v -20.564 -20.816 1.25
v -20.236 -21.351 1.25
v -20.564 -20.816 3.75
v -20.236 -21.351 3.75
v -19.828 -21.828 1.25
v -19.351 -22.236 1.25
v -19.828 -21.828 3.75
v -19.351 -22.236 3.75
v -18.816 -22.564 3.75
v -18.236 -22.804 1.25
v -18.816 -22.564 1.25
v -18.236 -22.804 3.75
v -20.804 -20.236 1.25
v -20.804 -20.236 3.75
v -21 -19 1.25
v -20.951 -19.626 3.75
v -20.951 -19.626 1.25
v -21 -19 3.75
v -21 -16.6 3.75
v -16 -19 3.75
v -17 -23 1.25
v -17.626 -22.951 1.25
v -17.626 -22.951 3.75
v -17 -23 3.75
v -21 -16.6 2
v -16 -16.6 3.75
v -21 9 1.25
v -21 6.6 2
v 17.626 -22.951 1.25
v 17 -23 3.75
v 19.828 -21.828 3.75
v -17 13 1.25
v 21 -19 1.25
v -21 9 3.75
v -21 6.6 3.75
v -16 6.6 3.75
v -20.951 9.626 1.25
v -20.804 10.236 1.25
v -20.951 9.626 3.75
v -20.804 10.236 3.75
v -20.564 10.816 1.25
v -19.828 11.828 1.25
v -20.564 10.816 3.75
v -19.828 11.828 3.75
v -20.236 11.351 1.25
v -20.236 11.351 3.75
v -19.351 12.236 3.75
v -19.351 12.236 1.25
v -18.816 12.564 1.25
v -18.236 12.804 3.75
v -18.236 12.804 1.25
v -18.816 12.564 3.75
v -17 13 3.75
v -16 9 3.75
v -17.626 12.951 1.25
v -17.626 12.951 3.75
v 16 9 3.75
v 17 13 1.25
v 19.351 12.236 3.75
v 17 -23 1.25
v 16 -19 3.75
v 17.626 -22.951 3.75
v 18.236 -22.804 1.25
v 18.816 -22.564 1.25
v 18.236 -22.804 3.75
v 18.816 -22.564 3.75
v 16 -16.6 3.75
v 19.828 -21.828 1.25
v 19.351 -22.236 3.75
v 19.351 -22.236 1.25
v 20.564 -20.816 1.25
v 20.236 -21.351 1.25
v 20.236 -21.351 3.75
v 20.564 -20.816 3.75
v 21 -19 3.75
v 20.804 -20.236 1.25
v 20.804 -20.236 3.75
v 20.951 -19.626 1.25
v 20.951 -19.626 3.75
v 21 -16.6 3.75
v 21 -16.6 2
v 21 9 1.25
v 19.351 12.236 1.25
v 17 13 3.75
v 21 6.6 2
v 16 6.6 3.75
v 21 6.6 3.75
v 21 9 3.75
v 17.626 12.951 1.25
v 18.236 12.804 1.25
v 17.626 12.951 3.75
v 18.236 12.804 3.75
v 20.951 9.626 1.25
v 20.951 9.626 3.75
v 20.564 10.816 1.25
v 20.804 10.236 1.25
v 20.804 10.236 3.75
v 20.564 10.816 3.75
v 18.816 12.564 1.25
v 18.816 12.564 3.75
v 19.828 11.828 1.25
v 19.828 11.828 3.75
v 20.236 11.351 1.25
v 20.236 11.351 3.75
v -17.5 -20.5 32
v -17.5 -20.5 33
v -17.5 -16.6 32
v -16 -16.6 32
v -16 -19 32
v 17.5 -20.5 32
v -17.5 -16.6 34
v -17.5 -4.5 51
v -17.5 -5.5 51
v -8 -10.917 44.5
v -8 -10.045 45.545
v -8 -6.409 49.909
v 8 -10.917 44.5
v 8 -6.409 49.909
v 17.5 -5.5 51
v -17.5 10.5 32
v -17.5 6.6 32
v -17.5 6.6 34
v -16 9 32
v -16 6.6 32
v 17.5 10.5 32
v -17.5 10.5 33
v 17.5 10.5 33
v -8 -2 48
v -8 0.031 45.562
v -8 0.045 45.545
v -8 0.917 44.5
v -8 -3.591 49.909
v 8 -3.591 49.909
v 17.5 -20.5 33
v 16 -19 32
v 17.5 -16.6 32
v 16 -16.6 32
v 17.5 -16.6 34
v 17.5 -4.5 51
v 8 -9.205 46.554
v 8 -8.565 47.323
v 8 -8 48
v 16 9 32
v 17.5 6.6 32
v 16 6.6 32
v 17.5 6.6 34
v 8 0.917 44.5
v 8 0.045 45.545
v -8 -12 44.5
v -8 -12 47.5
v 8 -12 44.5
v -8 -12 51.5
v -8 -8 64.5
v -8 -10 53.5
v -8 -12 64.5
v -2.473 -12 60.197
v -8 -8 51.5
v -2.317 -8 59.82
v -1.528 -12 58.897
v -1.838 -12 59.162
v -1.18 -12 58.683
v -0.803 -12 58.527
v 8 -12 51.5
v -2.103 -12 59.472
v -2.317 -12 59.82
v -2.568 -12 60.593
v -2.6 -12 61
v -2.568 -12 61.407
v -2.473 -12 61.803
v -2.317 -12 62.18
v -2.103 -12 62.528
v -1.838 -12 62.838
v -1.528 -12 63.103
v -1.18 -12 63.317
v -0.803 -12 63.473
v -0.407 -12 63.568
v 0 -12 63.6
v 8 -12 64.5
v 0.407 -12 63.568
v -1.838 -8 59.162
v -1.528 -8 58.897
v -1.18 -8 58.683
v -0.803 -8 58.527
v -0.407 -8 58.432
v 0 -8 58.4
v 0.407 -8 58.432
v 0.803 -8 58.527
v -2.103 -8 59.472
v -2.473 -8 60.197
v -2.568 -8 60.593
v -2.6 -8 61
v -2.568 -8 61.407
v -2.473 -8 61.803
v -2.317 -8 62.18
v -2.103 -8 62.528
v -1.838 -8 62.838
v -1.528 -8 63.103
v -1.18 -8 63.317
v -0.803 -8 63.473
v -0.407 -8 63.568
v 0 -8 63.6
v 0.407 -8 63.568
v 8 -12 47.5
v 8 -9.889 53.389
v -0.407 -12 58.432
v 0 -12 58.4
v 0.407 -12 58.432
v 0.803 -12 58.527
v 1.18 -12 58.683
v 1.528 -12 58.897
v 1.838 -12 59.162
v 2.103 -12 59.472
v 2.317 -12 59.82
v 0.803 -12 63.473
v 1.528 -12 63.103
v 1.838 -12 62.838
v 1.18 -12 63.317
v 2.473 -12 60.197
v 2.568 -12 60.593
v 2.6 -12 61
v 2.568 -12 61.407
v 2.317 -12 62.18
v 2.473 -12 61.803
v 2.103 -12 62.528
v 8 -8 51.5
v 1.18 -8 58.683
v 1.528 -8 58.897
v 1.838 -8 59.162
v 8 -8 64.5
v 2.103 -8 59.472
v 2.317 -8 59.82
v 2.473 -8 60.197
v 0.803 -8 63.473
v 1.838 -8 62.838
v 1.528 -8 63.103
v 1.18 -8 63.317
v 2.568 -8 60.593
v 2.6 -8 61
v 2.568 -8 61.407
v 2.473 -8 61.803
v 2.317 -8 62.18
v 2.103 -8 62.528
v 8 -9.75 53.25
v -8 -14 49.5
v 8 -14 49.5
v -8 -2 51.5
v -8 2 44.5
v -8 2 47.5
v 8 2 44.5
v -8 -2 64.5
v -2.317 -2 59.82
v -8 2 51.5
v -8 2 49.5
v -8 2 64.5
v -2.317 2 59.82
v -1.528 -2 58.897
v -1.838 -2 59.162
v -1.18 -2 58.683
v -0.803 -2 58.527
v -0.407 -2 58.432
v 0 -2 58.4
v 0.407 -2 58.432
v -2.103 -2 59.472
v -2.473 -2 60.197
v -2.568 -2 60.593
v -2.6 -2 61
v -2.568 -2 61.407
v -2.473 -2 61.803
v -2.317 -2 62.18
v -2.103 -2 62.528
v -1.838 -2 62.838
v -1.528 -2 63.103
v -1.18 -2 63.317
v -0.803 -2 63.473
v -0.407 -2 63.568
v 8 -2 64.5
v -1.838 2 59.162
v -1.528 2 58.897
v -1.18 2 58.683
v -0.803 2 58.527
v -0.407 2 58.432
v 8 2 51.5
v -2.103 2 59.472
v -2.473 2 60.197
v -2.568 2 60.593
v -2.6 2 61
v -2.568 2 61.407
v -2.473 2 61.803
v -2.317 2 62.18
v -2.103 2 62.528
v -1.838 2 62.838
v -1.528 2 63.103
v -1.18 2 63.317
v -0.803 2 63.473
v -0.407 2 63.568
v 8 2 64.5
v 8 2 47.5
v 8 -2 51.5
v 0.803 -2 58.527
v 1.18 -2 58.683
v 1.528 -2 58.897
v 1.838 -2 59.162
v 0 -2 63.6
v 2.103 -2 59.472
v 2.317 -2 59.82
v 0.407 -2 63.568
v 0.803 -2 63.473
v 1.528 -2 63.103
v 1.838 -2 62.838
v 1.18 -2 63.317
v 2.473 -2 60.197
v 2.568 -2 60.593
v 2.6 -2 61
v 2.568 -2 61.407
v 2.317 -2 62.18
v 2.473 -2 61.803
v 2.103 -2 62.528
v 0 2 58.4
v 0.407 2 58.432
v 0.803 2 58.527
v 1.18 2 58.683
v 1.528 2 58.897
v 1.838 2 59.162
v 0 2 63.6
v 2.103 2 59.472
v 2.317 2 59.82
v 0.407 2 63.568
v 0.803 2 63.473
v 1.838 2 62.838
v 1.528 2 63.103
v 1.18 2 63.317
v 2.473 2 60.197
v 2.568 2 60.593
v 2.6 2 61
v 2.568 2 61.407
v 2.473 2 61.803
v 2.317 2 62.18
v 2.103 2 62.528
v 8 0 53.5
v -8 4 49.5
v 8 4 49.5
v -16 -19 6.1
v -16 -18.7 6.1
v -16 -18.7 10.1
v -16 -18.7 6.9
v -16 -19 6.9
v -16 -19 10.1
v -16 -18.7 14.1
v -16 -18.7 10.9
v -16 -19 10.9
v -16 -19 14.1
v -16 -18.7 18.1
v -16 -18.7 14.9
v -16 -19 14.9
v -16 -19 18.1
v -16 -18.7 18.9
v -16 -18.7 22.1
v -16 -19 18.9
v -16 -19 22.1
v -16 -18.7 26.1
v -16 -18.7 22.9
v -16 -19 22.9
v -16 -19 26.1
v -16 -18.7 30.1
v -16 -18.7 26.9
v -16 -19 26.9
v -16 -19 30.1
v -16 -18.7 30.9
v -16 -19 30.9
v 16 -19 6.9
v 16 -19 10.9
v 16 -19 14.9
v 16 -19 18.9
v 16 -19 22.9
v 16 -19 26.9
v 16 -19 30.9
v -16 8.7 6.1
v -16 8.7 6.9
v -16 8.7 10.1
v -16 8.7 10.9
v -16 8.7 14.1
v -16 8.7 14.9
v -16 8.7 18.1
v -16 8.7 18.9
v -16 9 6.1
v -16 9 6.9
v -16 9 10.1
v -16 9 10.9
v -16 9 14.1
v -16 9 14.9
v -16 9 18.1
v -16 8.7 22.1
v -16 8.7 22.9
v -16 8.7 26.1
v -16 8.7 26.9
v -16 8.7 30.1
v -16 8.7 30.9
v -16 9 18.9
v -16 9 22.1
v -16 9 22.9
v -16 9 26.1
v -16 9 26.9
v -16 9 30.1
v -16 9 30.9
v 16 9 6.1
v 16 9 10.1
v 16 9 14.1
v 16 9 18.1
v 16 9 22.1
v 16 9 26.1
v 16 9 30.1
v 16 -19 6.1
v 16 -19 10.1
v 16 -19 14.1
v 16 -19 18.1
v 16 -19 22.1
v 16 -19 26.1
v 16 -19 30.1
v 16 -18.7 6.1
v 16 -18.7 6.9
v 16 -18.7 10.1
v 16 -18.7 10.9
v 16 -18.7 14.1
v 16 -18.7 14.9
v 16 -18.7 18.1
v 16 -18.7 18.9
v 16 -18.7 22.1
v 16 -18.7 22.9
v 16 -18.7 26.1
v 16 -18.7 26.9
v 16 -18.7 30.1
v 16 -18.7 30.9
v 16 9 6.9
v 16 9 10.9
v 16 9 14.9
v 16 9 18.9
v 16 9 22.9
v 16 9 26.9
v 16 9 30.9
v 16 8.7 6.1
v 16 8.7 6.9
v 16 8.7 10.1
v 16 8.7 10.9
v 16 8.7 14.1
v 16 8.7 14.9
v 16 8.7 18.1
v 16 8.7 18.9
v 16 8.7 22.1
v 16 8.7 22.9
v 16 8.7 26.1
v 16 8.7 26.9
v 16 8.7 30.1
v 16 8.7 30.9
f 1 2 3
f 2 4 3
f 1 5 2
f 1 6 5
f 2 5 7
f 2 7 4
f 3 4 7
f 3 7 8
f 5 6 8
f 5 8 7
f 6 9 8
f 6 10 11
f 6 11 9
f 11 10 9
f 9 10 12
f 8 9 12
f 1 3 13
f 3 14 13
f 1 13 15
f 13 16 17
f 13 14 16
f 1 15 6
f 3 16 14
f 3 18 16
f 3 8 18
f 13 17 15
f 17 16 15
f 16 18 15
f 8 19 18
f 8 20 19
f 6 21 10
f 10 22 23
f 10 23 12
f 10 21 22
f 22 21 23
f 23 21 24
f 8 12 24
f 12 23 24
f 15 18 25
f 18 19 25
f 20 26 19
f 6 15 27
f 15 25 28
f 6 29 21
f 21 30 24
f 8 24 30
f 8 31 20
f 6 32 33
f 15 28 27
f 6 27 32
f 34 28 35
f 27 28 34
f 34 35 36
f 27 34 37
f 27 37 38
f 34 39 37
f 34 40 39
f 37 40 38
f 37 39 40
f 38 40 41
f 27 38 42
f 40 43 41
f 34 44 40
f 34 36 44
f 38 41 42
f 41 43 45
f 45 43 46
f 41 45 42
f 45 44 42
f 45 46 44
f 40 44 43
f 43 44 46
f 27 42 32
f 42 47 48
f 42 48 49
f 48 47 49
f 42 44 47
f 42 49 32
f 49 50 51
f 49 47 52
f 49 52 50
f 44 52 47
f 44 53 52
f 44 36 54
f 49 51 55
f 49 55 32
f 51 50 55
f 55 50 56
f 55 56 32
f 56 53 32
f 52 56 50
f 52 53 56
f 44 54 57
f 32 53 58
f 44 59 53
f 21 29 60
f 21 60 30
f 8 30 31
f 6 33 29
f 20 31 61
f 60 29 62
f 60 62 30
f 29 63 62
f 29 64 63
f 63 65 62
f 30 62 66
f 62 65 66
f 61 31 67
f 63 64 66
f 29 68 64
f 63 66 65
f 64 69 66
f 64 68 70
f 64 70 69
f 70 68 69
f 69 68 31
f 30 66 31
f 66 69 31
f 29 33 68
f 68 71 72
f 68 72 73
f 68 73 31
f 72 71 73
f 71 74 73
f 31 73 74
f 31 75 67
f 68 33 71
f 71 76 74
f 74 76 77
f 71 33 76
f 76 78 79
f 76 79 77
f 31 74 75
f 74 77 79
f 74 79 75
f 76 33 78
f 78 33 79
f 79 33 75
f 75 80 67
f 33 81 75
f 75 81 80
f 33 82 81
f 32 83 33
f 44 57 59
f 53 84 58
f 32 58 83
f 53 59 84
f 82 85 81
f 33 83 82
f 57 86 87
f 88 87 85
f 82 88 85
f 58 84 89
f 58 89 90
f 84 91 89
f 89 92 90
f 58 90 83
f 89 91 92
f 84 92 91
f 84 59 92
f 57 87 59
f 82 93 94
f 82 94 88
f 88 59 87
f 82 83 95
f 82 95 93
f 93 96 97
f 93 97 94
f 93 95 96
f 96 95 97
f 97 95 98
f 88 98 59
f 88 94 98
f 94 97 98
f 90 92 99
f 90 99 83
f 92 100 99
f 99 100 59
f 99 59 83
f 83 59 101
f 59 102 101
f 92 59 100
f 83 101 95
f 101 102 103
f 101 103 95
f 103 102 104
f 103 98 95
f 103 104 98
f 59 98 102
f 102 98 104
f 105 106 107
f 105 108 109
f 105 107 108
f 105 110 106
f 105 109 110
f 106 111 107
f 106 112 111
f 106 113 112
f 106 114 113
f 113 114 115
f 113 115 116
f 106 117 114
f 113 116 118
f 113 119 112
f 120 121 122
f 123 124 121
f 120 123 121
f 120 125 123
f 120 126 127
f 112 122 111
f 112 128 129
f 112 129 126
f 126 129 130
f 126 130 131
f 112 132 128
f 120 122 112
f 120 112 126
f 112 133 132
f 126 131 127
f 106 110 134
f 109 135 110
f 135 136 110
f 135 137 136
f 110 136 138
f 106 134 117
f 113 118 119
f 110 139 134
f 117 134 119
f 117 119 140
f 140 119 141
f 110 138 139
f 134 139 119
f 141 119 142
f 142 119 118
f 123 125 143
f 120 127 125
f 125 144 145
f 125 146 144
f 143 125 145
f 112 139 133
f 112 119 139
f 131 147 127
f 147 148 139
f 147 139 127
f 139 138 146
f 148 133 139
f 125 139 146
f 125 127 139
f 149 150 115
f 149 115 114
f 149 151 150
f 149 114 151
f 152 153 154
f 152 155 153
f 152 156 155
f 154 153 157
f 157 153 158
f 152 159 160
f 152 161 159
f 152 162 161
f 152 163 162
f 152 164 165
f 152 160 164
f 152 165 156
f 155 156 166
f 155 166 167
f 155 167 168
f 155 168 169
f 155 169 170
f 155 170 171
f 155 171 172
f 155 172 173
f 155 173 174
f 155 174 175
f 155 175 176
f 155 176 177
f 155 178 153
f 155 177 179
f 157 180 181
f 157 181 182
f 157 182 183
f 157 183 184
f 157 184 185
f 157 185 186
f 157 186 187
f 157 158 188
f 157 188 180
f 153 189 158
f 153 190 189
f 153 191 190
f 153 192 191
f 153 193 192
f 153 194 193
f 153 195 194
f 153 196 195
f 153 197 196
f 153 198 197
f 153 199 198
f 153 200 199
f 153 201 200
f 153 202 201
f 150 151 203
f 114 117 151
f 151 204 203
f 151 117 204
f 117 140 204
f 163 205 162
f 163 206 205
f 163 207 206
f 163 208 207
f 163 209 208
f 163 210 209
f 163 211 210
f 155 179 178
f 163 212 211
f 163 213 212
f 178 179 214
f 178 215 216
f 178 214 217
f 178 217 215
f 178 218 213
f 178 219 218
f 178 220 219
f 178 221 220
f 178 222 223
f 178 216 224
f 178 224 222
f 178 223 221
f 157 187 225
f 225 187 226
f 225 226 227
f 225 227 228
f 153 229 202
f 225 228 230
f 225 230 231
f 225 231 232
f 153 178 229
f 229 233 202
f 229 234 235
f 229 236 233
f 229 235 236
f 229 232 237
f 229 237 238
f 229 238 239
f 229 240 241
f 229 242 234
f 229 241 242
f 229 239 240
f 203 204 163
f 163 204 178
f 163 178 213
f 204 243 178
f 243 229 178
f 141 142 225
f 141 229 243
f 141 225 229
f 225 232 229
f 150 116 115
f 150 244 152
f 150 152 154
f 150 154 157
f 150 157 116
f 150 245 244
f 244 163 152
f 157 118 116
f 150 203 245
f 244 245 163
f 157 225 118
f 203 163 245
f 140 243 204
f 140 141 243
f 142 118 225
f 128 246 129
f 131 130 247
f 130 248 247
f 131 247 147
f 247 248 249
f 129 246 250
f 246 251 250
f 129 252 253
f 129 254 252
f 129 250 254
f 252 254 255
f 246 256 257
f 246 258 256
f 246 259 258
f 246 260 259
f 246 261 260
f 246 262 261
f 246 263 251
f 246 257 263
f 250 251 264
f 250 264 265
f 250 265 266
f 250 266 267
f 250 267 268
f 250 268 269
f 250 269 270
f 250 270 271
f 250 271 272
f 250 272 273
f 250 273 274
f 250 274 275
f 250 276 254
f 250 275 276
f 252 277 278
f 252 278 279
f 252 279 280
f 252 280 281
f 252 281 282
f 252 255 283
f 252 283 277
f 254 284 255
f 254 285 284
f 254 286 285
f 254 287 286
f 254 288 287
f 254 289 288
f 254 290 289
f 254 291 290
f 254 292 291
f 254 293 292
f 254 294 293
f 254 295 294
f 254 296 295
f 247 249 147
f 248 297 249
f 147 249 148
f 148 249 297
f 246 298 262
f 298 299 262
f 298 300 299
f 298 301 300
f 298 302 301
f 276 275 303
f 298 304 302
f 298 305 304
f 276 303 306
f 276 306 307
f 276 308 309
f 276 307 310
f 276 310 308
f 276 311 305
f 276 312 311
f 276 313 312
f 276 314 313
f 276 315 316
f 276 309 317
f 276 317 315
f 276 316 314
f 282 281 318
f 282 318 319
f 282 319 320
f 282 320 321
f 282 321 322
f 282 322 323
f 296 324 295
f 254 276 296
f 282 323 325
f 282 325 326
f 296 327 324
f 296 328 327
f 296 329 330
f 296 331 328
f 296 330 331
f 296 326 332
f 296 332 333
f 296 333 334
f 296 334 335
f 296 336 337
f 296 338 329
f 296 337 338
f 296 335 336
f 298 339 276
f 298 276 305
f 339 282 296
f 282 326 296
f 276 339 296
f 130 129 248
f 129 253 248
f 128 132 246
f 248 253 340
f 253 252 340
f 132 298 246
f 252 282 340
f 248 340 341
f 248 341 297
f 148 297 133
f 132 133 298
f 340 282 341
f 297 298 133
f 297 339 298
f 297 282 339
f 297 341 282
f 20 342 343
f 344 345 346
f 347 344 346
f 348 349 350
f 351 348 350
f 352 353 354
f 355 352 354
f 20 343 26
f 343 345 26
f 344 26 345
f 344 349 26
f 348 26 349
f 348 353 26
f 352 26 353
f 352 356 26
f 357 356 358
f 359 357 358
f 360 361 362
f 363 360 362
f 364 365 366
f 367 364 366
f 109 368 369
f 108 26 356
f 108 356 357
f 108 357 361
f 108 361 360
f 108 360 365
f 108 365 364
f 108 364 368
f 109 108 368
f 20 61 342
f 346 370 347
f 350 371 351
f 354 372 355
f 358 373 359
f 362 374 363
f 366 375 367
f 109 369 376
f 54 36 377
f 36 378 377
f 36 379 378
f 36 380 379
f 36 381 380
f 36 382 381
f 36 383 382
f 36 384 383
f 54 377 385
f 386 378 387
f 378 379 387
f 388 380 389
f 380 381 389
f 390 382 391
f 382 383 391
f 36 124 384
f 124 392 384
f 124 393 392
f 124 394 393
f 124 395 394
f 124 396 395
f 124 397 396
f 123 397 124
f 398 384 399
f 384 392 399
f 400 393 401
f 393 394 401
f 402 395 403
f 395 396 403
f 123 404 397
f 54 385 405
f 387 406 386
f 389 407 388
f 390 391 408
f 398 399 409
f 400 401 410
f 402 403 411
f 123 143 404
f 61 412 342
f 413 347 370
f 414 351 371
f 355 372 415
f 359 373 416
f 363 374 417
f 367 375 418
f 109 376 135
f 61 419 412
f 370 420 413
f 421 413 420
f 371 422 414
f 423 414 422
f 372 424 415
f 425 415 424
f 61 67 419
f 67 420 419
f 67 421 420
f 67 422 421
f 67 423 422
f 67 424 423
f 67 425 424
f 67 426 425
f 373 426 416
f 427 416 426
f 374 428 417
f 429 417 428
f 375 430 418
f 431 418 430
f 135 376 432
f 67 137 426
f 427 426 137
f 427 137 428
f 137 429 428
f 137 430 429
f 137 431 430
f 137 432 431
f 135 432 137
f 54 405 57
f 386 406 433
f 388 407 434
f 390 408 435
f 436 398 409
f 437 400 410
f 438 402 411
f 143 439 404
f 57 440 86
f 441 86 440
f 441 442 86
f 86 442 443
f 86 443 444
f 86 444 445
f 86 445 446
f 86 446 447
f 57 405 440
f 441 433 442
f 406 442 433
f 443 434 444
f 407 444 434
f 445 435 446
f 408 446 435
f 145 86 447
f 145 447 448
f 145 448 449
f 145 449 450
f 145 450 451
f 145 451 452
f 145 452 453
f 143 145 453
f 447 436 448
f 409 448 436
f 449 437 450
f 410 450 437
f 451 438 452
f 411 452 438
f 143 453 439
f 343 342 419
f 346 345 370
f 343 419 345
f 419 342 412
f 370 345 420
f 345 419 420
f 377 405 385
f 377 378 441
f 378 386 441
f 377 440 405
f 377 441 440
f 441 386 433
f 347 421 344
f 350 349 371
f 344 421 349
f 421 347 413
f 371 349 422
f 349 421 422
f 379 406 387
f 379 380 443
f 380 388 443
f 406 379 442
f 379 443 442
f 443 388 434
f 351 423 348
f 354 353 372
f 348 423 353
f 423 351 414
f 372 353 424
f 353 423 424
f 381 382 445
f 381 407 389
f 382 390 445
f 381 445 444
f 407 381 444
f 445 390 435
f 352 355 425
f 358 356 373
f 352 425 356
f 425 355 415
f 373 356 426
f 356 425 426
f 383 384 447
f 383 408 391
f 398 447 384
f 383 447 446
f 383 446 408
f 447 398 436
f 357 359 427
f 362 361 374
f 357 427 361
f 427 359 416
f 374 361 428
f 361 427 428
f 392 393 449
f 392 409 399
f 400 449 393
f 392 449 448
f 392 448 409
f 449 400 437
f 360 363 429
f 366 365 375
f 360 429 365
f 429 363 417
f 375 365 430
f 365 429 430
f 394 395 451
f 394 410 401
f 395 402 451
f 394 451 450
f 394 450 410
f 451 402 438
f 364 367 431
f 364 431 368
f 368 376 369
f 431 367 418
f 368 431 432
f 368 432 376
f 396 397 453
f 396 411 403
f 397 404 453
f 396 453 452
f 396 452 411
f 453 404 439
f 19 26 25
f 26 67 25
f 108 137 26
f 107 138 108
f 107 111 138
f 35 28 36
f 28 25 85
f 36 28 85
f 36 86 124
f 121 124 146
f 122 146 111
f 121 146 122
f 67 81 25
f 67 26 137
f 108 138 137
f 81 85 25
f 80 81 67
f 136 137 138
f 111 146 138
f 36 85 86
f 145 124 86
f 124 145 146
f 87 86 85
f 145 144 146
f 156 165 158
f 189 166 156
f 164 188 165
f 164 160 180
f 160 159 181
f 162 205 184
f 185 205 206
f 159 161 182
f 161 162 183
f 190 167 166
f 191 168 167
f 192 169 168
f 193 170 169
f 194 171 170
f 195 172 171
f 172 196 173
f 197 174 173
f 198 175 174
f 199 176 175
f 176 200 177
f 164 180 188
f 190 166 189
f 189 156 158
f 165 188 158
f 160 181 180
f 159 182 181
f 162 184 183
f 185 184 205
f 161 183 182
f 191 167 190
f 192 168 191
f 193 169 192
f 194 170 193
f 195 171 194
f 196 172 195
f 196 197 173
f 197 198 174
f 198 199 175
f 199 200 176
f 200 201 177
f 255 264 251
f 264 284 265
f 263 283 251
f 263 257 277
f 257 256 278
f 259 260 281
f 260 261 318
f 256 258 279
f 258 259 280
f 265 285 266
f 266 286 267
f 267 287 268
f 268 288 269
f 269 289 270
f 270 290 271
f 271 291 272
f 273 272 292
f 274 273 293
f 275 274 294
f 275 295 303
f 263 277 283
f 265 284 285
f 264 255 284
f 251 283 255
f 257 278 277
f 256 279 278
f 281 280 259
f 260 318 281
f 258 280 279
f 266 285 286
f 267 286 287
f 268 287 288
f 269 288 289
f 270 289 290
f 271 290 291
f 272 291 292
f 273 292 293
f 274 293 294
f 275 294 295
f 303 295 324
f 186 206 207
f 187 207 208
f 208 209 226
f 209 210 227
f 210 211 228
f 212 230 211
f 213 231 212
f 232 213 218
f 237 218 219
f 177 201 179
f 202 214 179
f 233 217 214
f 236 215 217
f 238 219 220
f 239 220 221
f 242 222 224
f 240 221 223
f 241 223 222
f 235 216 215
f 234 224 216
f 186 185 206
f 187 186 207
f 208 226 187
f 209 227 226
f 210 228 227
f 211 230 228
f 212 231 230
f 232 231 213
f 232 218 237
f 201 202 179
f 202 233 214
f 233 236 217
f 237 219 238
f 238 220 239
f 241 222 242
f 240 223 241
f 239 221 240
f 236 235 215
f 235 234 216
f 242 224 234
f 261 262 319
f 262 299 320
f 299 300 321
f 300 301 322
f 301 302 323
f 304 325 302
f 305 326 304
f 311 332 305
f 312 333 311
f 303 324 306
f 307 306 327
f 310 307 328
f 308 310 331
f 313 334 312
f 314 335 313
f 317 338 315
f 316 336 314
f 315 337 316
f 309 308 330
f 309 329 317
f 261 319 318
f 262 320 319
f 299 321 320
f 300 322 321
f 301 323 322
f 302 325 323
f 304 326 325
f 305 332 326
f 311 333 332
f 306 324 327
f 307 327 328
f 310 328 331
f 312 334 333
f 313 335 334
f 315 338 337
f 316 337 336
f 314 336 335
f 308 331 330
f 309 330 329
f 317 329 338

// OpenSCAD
// ====================================================================
// Alpine Gondola Mountain Summit Station Chalet (Station B - Top Station)
// 
// Architectural & Engineering Features:
// - Shorter Compact Baseplate: Baseplate footprint shortened to 42mm x 36mm!
// - Rocks Removed on Longer Sides: Clean, streamlined mountain base without clutter!
// - Open-Ended Drive-Through Alpine Canopy: Front (+X) and back (-X) walls open for gondola passage.
// - Solid Side Support Walls: Rigid +Y and -Y side walls supporting the alpine gable roof overhead.
// - ROOFING & CLEVIS EXACT MATCH TO GROUND STATION (Station A):
//   - Main Roof Pitch: 45-degree Alpine Gable Roof (Width = 28.0mm, Eaves = 30.0mm, Peak = 18.0mm).
//   - Elevated Vertical Clevis Ears: Exact same 14.0mm outer span & 6.0mm channel width.
//   - Axle Bore: Positioned at Z = 61.0mm (5.2mm bore) - fits the exact same Sheave (08a), Axle Pin (08c), and End Cap (08d)!
// - 100% Support-Free: Rests flat on summit baseplate at Z = 0.
// ====================================================================

$fn = 40;

// Compact Summit Building Dimensions (mm)
building_l  = 32.0;  // Summit length along X-axis
building_w  = 28.0;  // Main Boarding Hall Width (EXACT MATCH to Station A!)
eaves_h     = 30.0;  // Wall height to main roof eaves (EXACT MATCH!)
roof_h      = 18.0;  // Peak main roof height above eaves (EXACT MATCH! Total H = 48mm)
wall_th     = 2.4;   // Side wall thickness

module rounded_box(l, w, h, r) {
    hull() {
        for (x = [-l/2 + r, l/2 - r]) {
            for (y = [-w/2 + r, w/2 - r]) {
                translate([x, y, 0])
                    cylinder(r = r, h = h);
            }
        }
    }
}

module station_b_mountain_building() {
    difference() {
        union() {
            // 1. Shorter & Compact Summit Baseplate (42mm x 36mm Footprint)
            translate([0, -5.0, 1.25])
                hull() {
                    rounded_box(building_l + 10.0, building_w + 8.0, 2.5, 4.0);
                }

            // 2. Solid Side Support Walls (+Y and -Y side walls lifted onto 2.5mm base)
            translate([0, -5.0, 2.5 + eaves_h / 2])
                cube([building_l, building_w, eaves_h], center = true);

            // 3. Alpine 45-degree Pitch Gable Roof (EXACT MATCH TO STATION A!)
            translate([0, -5.0, 2.5 + eaves_h])
                hull() {
                    cube([building_l + 3.0, building_w + 3.0, 1.0], center = true);
                    translate([0, 0, roof_h])
                        cube([building_l + 3.0, 1.0, 1.0], center = true);
                }

            // 4. Elevated Open Vertical Clevis Ears (EXACT MATCH TO STATION A!)
            for (y_sign = [-1, 1]) {
                translate([0, -5.0 + y_sign * 5.0, 2.5 + eaves_h + roof_h + 4.0])
                    cube([16.0, 4.0, 20.0], center = true);
                
                translate([0, -5.0 + y_sign * 5.0, 2.5 + eaves_h + roof_h - 1.0])
                    rotate([0, 90, 0])
                        rotate([0, 0, 45])
                            cube([8.0 / sqrt(2), 8.0 / sqrt(2), 16.0], center = true);
            }

            // 5. Decorative Timber Corner Posts
            for (x_sign = [-1, 1]) {
                for (y_sign = [-1, 1]) {
                    translate([x_sign * (building_l / 2 - 1.2), -5.0 + y_sign * (building_w / 2 - 1.2), 2.5 + eaves_h / 2])
                        cube([2.4, 2.4, eaves_h], center = true);
                }
            }
        }

        // --- SUBTRACTIONS ---

        // A. FRONT AND BACK WALL REMOVAL (Complete Drive-Through Corridor along X-axis)
        translate([0, -5.0, 2.5 + eaves_h / 2 + 0.5])
            cube([building_l + 10.0, building_w - wall_th * 2, eaves_h + 2.0], center = true);

        // B. Elevated Drive Sheave Axle Bore through Clevis Ears (EXACT MATCH TO STATION A!)
        translate([0, -5.0, 2.5 + eaves_h + roof_h + 10.5])
            rotate([90, 0, 0])
                cylinder(d = 5.2, h = building_w + 14, center = true);

        // C. Decorative Timber Siding Grooves on Exterior Side Walls
        for (z = [4 : 4 : eaves_h - 2]) {
            for (y_sign = [-1, 1]) {
                translate([0, -5.0 + y_sign * (building_w / 2), 2.5 + z])
                    cube([building_l + 2, 0.6, 0.8], center = true);
            }
        }
    }
}

// Render flat on foundation floor at Z = 0
station_b_mountain_building();
